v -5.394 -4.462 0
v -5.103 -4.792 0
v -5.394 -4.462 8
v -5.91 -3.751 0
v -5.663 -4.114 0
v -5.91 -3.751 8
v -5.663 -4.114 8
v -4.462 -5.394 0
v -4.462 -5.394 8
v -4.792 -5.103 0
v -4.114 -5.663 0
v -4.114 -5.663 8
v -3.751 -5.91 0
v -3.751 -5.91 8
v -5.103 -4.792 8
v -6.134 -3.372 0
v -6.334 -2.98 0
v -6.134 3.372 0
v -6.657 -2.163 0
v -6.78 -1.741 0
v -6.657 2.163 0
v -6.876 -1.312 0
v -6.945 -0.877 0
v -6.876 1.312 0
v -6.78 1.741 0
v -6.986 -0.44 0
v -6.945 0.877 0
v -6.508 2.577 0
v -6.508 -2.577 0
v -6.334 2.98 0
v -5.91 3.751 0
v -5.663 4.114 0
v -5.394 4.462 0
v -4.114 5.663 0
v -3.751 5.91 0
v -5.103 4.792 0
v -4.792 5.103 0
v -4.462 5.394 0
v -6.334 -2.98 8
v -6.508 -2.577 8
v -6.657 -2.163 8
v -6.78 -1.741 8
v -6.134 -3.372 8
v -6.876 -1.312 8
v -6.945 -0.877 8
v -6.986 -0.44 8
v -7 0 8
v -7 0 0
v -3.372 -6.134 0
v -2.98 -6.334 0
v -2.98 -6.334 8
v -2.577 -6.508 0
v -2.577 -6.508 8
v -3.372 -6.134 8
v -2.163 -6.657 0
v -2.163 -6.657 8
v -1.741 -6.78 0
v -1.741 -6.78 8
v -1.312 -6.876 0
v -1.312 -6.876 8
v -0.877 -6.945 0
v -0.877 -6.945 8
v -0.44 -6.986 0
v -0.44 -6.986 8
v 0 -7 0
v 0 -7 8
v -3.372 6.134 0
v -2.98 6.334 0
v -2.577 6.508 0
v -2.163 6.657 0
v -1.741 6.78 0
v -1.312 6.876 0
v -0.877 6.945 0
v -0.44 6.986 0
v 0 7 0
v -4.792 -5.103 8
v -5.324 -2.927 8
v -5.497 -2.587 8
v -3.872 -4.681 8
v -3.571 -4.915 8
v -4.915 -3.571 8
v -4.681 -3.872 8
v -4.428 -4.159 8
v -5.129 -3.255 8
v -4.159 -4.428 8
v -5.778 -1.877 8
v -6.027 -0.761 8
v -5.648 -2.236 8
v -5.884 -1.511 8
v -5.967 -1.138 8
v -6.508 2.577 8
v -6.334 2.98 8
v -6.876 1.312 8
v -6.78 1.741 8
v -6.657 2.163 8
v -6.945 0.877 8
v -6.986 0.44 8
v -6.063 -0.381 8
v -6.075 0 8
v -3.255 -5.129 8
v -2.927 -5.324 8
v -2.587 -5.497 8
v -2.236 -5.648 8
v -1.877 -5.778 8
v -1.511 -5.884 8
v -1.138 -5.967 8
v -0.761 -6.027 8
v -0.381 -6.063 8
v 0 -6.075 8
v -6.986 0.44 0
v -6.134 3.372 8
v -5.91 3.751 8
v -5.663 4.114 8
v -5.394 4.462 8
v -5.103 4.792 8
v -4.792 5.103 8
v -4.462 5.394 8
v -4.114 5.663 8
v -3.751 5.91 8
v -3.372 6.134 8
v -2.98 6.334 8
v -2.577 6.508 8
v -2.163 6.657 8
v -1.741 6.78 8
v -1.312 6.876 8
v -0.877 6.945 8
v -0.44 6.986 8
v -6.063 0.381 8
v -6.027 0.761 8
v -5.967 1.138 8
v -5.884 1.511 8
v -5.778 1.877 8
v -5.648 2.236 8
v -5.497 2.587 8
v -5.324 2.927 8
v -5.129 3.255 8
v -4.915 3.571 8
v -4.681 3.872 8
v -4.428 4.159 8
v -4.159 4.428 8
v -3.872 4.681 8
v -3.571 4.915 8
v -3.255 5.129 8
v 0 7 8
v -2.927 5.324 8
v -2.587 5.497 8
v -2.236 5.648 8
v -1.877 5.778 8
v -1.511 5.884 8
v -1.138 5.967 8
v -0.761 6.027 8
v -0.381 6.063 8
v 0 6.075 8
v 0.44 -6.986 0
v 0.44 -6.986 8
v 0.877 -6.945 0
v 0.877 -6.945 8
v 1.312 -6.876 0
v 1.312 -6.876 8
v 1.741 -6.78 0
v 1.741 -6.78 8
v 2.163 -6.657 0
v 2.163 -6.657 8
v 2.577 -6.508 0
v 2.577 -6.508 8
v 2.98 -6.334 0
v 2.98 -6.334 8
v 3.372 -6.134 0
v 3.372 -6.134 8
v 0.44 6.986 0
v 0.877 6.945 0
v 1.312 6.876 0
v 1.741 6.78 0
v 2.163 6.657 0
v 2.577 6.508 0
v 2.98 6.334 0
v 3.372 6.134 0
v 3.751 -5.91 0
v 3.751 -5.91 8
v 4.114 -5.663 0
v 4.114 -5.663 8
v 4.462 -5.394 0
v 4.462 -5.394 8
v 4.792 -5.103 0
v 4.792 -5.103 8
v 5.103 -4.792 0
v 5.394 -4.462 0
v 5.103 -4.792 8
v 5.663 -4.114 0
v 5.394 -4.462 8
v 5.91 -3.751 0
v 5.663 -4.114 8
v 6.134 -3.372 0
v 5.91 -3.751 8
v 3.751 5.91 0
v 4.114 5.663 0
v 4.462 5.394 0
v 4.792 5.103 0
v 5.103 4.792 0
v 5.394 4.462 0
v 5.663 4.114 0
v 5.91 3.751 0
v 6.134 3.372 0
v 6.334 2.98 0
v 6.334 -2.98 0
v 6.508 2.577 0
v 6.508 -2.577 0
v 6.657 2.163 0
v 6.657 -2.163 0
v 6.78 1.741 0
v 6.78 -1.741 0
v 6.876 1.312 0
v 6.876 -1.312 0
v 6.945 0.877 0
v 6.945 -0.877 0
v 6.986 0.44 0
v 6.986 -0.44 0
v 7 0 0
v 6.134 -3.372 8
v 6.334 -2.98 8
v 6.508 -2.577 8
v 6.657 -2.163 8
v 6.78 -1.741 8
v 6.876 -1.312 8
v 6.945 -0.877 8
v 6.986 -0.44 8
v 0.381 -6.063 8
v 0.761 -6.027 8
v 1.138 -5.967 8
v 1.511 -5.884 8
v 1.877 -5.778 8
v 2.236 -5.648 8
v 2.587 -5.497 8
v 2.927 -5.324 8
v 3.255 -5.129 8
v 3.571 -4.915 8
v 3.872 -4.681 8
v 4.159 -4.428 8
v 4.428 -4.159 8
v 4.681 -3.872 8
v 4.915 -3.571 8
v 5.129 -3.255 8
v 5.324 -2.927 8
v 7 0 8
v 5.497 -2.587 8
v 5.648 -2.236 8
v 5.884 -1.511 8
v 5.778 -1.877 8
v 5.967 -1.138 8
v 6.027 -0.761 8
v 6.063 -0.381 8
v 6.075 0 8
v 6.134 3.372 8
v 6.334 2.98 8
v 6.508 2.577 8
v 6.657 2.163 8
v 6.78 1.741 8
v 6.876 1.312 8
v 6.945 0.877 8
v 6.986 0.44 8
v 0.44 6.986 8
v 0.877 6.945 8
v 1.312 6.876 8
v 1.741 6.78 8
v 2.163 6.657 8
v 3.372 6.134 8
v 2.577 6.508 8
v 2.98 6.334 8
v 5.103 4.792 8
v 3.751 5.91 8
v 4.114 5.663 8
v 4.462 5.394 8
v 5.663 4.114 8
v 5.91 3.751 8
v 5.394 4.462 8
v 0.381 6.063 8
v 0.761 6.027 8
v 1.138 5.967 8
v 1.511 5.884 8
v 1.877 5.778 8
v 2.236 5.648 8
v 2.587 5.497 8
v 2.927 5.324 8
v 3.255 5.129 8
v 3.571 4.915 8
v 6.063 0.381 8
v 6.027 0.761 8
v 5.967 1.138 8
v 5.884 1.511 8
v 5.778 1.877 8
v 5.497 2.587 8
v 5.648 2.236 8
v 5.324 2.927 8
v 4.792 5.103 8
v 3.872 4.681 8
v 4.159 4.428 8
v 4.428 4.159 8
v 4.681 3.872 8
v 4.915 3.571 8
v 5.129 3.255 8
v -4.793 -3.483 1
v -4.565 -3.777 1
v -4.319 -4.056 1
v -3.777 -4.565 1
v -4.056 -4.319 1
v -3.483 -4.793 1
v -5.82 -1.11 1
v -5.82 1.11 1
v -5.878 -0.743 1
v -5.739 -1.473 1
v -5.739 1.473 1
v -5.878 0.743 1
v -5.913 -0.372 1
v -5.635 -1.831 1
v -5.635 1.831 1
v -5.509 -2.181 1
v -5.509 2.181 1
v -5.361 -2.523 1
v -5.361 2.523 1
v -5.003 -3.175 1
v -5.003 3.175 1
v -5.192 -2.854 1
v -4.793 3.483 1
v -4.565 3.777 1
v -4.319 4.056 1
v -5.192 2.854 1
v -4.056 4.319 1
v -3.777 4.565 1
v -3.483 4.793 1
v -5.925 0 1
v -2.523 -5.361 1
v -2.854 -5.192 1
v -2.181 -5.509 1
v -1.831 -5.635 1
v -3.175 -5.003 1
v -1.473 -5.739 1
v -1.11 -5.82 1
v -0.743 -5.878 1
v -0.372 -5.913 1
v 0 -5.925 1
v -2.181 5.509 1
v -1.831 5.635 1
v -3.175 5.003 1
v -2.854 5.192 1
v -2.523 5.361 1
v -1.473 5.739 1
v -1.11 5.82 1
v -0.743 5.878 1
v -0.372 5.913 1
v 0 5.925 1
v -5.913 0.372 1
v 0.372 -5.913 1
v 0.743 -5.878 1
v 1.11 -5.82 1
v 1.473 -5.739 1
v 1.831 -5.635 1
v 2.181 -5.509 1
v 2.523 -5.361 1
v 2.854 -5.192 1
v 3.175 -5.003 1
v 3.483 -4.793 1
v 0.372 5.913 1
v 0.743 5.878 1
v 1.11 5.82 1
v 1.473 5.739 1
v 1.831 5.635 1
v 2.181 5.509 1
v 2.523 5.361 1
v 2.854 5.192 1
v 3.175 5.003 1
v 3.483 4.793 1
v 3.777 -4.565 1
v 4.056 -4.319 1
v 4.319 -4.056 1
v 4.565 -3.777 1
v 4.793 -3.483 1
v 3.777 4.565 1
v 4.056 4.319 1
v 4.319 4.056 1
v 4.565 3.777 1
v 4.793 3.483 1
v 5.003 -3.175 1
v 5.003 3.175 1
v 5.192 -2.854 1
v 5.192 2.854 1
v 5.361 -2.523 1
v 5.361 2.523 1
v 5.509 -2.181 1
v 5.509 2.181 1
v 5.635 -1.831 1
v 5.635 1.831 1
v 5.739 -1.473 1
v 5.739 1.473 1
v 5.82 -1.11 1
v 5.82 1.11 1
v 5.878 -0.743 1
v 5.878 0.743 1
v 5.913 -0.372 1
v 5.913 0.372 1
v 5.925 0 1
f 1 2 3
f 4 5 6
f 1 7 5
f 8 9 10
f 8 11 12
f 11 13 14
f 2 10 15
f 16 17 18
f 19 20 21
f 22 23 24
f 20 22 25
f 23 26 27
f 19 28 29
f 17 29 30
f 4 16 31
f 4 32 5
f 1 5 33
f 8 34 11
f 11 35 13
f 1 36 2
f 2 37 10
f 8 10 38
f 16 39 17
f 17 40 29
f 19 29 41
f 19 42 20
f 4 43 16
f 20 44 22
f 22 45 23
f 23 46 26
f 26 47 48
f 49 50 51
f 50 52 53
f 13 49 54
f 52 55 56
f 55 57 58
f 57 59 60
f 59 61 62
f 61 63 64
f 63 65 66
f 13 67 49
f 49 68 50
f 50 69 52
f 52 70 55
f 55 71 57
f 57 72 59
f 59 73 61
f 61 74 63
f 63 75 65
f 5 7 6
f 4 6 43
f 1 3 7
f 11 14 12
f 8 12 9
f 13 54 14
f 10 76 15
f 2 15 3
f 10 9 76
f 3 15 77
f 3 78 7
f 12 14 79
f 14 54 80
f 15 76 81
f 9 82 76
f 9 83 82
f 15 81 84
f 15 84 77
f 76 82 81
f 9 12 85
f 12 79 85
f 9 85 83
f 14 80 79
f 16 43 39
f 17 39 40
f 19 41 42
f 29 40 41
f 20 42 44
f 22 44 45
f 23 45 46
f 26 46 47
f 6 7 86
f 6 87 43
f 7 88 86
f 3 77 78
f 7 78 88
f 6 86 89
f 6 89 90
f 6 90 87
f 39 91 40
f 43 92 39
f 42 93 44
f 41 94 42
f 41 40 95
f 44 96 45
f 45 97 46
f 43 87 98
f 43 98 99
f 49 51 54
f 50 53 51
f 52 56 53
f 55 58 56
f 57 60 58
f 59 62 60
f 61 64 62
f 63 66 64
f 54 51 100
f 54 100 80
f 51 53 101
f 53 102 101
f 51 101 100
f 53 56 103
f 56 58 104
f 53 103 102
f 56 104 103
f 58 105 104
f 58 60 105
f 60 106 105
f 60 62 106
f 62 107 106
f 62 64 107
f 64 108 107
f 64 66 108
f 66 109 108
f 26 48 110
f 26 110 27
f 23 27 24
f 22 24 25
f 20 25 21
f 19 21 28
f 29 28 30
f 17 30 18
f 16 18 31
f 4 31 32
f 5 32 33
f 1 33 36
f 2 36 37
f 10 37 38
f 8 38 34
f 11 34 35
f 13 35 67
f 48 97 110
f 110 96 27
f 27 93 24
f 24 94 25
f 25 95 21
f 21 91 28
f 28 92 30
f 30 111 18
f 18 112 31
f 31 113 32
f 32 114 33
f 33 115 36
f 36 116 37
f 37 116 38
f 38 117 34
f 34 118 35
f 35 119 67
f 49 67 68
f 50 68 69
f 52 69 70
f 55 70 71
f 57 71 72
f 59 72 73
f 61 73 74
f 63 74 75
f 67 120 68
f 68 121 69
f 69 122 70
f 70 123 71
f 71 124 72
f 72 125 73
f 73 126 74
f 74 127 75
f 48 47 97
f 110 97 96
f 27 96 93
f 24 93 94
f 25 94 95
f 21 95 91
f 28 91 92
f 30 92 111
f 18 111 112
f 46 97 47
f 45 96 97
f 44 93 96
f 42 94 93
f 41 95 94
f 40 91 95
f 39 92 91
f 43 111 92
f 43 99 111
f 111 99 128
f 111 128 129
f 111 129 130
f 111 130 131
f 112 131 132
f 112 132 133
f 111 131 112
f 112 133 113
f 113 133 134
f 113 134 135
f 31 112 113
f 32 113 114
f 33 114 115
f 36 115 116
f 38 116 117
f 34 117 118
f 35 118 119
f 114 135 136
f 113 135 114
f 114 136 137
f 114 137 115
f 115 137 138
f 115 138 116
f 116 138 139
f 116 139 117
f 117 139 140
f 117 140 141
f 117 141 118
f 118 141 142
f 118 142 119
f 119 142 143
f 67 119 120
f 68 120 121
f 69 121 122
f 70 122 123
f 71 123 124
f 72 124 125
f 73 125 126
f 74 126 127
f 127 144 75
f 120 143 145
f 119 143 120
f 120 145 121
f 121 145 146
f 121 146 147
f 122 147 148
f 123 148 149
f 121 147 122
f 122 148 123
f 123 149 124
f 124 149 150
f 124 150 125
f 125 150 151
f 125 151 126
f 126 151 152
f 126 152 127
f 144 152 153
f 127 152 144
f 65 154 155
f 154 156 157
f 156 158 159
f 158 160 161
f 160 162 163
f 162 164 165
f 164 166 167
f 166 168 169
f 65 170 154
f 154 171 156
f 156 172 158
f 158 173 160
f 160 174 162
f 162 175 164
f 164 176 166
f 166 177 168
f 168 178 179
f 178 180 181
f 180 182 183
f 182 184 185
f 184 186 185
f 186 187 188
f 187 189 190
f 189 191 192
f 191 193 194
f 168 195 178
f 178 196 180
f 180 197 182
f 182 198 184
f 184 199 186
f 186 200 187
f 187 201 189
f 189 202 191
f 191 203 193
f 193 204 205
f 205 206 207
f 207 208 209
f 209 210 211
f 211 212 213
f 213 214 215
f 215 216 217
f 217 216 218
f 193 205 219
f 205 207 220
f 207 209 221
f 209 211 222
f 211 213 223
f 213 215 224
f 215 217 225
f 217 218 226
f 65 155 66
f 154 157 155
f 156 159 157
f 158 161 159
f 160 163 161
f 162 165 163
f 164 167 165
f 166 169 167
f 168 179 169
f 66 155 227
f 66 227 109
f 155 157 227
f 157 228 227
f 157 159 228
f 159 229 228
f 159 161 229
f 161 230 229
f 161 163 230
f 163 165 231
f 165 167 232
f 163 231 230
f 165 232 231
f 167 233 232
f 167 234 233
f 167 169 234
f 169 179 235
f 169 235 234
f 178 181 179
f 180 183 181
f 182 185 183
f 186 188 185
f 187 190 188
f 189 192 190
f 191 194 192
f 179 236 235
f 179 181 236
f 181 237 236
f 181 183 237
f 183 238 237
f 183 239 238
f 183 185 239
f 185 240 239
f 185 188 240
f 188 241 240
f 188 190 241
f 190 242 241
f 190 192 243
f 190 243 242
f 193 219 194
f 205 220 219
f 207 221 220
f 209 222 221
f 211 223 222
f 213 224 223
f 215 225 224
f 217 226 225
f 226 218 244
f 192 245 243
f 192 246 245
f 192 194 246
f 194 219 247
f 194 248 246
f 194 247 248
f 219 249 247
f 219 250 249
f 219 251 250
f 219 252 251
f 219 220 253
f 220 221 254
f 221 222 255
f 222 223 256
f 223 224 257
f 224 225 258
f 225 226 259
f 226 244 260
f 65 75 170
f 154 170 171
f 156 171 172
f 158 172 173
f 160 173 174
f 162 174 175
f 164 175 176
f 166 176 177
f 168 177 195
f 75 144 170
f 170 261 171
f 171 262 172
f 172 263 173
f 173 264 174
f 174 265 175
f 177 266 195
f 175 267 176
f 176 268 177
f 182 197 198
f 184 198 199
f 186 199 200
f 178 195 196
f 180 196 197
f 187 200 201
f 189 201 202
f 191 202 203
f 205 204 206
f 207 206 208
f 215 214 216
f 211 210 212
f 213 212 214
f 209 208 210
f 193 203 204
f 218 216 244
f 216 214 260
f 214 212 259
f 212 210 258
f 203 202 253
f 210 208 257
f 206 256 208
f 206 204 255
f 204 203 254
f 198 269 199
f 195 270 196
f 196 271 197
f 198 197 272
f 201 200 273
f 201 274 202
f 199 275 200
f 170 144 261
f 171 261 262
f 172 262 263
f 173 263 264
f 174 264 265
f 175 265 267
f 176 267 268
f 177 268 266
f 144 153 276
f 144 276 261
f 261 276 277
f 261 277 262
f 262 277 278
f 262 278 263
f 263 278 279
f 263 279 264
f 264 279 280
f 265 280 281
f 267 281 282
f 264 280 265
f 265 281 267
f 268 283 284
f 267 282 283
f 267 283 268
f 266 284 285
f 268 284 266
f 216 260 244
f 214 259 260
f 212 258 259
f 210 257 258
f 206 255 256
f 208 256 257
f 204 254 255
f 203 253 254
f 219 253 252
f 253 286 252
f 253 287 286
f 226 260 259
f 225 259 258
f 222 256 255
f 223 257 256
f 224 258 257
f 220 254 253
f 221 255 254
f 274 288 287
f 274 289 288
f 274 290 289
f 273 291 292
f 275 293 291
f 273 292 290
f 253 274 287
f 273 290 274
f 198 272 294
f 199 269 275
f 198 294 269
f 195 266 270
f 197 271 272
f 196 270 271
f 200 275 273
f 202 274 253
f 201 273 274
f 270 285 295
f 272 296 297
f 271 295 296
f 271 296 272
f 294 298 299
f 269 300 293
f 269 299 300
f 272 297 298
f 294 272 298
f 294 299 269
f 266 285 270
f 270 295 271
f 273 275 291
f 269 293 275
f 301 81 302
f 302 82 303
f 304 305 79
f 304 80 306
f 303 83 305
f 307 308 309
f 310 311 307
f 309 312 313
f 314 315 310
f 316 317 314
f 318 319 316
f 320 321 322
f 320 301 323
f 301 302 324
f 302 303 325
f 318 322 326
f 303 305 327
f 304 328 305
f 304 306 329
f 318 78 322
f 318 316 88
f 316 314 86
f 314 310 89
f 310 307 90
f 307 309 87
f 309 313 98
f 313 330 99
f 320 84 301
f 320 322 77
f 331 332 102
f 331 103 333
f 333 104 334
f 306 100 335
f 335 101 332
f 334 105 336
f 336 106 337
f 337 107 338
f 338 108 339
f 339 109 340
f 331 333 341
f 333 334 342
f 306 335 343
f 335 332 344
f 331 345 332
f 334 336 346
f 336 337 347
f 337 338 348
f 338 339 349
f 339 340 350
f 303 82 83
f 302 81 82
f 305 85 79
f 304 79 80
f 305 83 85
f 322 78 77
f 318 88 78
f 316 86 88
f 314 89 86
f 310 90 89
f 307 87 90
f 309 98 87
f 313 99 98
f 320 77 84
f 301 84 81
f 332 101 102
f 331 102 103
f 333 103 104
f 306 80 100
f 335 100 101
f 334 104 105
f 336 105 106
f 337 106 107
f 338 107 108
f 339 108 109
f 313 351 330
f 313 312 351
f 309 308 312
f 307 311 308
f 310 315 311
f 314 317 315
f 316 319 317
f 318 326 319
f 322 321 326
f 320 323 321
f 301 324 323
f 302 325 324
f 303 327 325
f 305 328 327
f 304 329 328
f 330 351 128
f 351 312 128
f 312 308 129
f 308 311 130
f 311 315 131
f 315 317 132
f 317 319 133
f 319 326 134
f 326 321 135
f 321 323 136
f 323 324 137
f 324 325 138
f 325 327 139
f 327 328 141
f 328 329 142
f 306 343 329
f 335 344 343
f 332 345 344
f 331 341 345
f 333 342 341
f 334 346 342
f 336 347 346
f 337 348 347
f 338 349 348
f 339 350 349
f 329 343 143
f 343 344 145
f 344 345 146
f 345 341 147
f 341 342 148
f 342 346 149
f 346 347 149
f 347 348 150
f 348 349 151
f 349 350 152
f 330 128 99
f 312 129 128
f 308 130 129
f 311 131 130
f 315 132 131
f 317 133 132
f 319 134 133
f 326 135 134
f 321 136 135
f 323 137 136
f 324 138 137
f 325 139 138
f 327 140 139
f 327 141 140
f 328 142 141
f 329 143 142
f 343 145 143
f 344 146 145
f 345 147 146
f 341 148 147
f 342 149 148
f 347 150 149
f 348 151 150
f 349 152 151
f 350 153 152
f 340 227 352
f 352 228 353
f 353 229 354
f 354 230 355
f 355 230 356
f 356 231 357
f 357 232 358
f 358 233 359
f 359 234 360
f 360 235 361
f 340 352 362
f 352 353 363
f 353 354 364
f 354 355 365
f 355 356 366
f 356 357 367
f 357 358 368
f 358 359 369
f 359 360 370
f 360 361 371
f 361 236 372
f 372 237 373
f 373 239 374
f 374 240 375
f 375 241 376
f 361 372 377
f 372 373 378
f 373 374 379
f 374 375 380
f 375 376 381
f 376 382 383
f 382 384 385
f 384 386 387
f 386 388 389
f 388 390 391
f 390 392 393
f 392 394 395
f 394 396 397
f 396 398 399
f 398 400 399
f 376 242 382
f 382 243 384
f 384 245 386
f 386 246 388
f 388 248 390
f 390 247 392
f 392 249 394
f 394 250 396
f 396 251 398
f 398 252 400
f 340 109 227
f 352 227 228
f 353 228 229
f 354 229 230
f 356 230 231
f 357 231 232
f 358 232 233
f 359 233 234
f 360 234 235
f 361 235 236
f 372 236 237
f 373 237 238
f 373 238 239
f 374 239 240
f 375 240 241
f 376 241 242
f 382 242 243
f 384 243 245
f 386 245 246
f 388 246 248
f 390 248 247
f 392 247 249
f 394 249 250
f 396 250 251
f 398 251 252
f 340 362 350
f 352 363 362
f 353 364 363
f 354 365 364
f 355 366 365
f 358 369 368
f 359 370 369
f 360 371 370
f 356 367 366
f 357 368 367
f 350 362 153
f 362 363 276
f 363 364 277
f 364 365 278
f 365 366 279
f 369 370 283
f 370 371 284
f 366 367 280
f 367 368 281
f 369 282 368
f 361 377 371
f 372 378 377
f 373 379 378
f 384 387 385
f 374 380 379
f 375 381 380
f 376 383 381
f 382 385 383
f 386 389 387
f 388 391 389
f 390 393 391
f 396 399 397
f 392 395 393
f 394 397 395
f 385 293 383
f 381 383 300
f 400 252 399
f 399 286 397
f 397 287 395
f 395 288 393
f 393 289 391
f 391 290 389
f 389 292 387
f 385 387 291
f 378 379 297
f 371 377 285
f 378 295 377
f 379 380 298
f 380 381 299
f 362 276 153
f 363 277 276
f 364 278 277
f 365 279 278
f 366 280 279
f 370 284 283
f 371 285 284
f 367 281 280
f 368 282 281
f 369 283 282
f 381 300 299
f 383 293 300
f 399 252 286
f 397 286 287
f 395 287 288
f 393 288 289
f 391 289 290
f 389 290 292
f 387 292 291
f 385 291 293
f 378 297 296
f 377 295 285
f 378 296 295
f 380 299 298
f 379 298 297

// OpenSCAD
$fn = 100;

difference() {
    cylinder(h=8, d=14);
    translate([0, 0, 1])
        cylinder(h=7, r1=5.925, r2=6.075);
}
